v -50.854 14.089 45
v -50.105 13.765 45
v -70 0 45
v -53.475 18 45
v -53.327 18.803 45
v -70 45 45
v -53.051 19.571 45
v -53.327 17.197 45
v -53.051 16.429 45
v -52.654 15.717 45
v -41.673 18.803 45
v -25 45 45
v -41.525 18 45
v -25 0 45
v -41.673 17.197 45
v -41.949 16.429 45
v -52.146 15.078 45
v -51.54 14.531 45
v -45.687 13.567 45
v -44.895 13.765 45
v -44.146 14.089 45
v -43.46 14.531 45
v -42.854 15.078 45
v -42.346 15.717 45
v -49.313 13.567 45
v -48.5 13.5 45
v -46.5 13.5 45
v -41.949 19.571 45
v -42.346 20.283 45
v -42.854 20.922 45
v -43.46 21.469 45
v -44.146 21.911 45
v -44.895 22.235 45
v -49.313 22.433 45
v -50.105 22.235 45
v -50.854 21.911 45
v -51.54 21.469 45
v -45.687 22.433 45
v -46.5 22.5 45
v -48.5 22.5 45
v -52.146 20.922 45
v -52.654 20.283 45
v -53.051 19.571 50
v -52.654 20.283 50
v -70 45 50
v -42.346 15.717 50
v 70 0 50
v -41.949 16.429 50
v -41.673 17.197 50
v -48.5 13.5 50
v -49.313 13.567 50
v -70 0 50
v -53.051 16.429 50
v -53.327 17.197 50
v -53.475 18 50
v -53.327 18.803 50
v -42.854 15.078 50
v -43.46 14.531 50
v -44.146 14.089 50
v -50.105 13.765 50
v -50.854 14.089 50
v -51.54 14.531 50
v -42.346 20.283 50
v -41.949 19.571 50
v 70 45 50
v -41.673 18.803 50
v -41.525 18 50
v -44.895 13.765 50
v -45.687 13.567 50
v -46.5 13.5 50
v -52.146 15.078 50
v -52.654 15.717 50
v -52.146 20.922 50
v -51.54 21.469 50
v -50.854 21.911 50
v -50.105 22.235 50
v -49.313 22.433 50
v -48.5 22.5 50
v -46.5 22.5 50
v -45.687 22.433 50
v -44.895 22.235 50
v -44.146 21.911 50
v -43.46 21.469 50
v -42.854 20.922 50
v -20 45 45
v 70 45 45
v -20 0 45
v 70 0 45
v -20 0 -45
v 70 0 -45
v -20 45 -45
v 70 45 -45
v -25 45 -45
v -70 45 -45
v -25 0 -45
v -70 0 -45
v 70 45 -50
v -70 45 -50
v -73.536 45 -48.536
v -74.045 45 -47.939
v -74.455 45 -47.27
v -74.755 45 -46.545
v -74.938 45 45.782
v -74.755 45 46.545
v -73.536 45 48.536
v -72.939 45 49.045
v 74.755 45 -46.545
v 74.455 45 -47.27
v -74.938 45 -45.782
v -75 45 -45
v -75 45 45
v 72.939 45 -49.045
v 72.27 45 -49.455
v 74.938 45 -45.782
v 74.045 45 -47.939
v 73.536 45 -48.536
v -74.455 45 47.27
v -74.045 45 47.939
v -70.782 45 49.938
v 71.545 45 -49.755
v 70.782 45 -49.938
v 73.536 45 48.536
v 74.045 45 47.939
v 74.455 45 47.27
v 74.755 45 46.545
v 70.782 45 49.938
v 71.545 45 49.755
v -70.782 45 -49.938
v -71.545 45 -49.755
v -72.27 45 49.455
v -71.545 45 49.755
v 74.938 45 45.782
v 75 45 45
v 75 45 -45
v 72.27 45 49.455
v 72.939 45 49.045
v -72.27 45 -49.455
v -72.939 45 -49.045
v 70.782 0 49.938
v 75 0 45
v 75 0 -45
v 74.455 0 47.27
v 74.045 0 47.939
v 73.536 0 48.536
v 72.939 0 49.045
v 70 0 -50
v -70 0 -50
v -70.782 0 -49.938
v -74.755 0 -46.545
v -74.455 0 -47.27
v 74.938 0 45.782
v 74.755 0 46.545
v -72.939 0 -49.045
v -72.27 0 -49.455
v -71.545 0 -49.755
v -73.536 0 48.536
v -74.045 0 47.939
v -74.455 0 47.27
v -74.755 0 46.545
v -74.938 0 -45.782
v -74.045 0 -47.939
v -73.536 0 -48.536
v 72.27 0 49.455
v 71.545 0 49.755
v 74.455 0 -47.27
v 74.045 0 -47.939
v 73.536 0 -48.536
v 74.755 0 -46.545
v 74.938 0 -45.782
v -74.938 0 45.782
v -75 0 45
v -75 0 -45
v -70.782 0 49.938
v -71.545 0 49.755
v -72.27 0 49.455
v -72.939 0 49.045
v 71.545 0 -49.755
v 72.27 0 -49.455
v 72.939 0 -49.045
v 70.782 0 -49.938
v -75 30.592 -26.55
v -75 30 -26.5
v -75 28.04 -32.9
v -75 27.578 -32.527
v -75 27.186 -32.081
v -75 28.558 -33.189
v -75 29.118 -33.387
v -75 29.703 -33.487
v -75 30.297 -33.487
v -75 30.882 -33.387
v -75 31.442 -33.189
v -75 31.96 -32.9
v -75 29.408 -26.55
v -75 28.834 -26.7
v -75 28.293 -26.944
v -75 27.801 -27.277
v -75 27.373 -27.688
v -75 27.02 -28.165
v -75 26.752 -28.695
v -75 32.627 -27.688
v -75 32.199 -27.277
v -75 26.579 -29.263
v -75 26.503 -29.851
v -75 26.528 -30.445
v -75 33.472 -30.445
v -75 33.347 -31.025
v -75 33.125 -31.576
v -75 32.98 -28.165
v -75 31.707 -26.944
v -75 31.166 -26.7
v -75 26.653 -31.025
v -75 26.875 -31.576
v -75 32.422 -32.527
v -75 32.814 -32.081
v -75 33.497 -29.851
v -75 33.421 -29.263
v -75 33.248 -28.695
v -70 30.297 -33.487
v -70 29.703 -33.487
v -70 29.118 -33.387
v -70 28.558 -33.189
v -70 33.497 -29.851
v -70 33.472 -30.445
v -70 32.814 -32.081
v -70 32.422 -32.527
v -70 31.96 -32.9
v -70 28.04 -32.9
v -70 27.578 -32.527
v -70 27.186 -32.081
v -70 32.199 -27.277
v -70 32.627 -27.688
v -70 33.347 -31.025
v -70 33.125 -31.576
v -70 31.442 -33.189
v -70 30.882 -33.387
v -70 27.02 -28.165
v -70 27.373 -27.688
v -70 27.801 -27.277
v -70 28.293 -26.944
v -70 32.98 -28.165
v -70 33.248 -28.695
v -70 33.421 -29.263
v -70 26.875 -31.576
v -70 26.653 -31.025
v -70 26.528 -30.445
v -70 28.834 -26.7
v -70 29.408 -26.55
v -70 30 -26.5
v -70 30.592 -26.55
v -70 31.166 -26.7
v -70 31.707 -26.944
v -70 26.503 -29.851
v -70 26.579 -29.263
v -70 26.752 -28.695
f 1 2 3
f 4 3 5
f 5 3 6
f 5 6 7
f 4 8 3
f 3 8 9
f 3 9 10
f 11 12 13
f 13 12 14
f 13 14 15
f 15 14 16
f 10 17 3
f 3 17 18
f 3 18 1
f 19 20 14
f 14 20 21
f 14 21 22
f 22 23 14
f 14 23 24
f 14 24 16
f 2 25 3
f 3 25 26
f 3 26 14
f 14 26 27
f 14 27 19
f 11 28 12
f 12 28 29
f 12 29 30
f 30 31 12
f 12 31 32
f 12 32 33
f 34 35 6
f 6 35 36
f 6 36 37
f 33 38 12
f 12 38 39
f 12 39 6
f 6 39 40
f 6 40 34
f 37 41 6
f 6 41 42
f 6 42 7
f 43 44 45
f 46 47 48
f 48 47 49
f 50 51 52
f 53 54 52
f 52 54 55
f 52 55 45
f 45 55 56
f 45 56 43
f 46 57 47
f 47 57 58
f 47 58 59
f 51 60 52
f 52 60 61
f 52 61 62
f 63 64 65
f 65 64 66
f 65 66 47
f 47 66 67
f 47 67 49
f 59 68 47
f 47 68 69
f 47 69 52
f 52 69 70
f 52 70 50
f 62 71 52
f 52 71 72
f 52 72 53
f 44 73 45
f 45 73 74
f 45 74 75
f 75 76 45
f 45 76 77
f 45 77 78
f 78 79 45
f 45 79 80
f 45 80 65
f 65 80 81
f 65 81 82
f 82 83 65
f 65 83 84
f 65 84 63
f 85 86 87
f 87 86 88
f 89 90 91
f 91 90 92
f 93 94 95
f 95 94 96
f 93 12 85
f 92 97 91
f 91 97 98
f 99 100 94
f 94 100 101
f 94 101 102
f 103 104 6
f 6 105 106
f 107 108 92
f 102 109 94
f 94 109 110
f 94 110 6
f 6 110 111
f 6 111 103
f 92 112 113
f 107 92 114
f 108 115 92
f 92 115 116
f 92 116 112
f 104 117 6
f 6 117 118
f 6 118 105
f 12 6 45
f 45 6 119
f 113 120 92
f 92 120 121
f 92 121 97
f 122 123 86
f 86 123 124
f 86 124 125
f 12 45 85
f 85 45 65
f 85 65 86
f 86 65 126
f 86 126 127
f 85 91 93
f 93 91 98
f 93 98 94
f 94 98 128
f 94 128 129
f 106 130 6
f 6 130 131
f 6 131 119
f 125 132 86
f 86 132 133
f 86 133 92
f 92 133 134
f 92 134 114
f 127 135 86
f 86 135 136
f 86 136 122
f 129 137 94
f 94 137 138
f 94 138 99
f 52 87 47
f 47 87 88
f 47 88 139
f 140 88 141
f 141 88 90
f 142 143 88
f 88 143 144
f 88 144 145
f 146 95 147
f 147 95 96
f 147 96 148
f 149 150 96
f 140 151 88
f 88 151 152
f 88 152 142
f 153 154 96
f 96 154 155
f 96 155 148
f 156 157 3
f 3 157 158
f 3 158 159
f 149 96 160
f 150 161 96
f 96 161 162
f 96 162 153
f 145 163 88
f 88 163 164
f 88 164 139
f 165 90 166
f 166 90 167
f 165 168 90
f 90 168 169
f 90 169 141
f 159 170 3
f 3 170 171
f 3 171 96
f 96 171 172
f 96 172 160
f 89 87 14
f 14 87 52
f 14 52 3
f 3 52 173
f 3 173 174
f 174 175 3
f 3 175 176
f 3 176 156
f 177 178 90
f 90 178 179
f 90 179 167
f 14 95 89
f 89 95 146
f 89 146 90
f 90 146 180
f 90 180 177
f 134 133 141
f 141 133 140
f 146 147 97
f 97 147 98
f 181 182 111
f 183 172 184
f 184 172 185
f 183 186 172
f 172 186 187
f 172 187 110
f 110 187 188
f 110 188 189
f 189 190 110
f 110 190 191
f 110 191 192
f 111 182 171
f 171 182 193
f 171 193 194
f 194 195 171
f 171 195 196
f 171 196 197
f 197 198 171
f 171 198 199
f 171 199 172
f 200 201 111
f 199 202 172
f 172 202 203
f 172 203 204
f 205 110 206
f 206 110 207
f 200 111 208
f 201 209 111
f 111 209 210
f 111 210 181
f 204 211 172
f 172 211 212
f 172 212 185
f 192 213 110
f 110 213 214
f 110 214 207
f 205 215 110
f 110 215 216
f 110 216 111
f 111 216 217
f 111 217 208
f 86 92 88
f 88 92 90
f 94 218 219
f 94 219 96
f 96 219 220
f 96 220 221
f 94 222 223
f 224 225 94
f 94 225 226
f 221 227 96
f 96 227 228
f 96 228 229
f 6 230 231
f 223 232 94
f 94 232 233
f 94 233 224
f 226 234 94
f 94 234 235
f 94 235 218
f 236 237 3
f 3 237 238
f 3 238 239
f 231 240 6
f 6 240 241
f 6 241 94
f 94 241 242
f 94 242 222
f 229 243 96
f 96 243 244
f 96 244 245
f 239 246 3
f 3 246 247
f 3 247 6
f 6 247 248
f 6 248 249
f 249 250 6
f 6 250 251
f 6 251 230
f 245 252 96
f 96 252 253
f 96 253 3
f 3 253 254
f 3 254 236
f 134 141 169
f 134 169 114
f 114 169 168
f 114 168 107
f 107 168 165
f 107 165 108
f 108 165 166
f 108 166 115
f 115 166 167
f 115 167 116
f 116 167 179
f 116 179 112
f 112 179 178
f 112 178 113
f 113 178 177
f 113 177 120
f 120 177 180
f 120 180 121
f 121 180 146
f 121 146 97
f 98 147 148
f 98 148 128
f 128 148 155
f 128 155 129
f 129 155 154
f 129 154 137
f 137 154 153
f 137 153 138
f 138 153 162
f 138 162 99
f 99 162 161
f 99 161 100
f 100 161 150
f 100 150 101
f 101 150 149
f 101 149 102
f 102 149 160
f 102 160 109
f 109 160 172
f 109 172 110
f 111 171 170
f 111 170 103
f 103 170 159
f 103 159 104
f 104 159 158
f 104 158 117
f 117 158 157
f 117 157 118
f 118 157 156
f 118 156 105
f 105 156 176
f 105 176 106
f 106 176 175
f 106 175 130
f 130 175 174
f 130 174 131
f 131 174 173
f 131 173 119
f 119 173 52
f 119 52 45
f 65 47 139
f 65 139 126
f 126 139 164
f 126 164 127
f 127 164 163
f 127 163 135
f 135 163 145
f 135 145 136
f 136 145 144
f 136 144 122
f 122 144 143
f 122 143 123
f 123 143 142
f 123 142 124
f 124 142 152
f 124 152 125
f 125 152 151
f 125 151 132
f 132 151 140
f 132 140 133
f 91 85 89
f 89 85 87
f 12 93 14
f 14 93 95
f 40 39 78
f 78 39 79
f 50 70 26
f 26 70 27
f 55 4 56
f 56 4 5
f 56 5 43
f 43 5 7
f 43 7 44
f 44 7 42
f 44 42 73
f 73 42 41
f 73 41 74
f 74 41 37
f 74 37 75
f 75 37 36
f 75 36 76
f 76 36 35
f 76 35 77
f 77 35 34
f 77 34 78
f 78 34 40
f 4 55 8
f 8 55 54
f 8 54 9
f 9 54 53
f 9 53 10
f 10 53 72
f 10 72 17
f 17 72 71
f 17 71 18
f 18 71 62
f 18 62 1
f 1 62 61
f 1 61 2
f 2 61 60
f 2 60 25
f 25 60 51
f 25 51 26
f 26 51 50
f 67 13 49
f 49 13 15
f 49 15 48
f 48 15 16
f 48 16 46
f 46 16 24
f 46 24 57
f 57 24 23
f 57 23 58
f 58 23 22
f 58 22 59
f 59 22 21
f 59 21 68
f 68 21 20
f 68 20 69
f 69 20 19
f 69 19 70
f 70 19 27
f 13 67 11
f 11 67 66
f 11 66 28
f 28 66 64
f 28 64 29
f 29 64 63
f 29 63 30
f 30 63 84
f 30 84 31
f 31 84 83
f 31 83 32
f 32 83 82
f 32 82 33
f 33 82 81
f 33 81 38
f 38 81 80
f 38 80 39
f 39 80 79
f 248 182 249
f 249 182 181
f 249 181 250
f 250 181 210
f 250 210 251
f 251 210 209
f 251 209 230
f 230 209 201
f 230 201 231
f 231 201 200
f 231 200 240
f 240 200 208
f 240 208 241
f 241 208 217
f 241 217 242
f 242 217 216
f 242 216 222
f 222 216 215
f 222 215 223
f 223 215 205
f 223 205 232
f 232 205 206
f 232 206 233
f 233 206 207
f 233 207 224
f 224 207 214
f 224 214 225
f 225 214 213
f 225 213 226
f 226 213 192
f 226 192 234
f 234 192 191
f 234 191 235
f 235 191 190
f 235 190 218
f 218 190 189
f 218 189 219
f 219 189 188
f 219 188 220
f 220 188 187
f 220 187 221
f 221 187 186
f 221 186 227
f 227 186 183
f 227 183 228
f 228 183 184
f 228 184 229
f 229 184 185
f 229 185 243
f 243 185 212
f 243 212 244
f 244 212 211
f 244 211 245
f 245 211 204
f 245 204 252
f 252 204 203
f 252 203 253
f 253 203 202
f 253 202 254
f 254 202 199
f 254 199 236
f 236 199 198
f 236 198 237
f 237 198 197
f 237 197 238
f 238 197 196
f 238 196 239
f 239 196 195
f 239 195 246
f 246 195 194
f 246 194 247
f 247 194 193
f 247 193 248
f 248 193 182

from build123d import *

# Parameters (mm, degrees)
SKETCH2_W           = 150
SKETCH2_H           = 100
SKETCH2_W_2         = 140
SKETCH2_H_2         = 90
BOSS_EXTRUDE3_DEPTH = 45
FILLET1_R           = 5
SKETCH3_W           = 5
SKETCH3_H           = 90
BOSS_EXTRUDE4_DEPTH = 45
SKETCH5_W           = 12
SKETCH5_H           = 9
CUT_EXTRUDE1_DEPTH  = 5
FILLET2_R           = 5
SKETCH6_R           = 3.5
CUT_EXTRUDE2_DEPTH  = 5


with BuildPart() as part:
    # Sketch2 → Boss-Extrude3 (new body)
    with BuildSketch(Plane(origin=(0, 0, 0), x_dir=(1, 0, 0), z_dir=(0, 1, 0))):
        Rectangle(SKETCH2_W, SKETCH2_H)
        Rectangle(SKETCH2_W_2, SKETCH2_H_2, mode=Mode.SUBTRACT)
    extrude(amount=BOSS_EXTRUDE3_DEPTH)

    # Fillet1
    fillet1_edges = [part.edges().sort_by_distance(p)[0] for p in [
        (75, 22.5, 50),
        (-75, 22.5, 50),
        (-75, 22.5, -50),
        (75, 22.5, -50),
    ]]
    fillet(fillet1_edges, radius=FILLET1_R)

    # Sketch3 → Boss-Extrude4 (add)
    with BuildSketch(Plane(origin=(0, 0, 0), x_dir=(1, 0, 0), z_dir=(0, 1, 0))):
        with Locations((-22.5, 0)):
            Rectangle(SKETCH3_W, SKETCH3_H)
    extrude(amount=BOSS_EXTRUDE4_DEPTH)

    # Sketch5 → Cut-Extrude1 (cut)
    with BuildSketch(Plane.XY.offset(50)):
        with Locations((-47.5, 18)):
            Rectangle(SKETCH5_W, SKETCH5_H)
    extrude(amount=-CUT_EXTRUDE1_DEPTH, mode=Mode.SUBTRACT)

    # Fillet2
    # the kernel refuses this fillet: 5 mm, written as the material it adds along each edge
    with BuildSketch(Plane(origin=(-53.5, 13.5, 50), x_dir=(0, 1, 0), z_dir=(0, 0, -1))) as fillet2_piece_1:
        with BuildLine():
            CenterArc((FILLET2_R, FILLET2_R), FILLET2_R, 180, 90)
            Line((0, FILLET2_R), (0, 0))
            Line((0, 0), (FILLET2_R, 0))
        make_face()
    extrude(amount=5)
    with BuildSketch(Plane(origin=(-53.5, 22.5, 50), x_dir=(0, -1, 0), z_dir=(0, 0, -1)), Plane(origin=(-41.5, 22.5, 50), x_dir=(-1, 0, 0), z_dir=(0, 0, -1)), Plane(origin=(-41.5, 13.5, 50), x_dir=(0, 1, 0), z_dir=(0, 0, -1))) as fillet2_piece_2:
        with BuildLine():
            CenterArc((FILLET2_R, -FILLET2_R), FILLET2_R, 90, 90)
            Line((0, -FILLET2_R), (0, 0))
            Line((0, 0), (FILLET2_R, 0))
        make_face()
    extrude(amount=5)

    # Sketch6 → Cut-Extrude2 (cut)
    with BuildSketch(Plane.ZY.offset(75)):
        with Locations((-30, 30)):
            Circle(SKETCH6_R)
    extrude(amount=-CUT_EXTRUDE2_DEPTH, mode=Mode.SUBTRACT)


solid = part.part
